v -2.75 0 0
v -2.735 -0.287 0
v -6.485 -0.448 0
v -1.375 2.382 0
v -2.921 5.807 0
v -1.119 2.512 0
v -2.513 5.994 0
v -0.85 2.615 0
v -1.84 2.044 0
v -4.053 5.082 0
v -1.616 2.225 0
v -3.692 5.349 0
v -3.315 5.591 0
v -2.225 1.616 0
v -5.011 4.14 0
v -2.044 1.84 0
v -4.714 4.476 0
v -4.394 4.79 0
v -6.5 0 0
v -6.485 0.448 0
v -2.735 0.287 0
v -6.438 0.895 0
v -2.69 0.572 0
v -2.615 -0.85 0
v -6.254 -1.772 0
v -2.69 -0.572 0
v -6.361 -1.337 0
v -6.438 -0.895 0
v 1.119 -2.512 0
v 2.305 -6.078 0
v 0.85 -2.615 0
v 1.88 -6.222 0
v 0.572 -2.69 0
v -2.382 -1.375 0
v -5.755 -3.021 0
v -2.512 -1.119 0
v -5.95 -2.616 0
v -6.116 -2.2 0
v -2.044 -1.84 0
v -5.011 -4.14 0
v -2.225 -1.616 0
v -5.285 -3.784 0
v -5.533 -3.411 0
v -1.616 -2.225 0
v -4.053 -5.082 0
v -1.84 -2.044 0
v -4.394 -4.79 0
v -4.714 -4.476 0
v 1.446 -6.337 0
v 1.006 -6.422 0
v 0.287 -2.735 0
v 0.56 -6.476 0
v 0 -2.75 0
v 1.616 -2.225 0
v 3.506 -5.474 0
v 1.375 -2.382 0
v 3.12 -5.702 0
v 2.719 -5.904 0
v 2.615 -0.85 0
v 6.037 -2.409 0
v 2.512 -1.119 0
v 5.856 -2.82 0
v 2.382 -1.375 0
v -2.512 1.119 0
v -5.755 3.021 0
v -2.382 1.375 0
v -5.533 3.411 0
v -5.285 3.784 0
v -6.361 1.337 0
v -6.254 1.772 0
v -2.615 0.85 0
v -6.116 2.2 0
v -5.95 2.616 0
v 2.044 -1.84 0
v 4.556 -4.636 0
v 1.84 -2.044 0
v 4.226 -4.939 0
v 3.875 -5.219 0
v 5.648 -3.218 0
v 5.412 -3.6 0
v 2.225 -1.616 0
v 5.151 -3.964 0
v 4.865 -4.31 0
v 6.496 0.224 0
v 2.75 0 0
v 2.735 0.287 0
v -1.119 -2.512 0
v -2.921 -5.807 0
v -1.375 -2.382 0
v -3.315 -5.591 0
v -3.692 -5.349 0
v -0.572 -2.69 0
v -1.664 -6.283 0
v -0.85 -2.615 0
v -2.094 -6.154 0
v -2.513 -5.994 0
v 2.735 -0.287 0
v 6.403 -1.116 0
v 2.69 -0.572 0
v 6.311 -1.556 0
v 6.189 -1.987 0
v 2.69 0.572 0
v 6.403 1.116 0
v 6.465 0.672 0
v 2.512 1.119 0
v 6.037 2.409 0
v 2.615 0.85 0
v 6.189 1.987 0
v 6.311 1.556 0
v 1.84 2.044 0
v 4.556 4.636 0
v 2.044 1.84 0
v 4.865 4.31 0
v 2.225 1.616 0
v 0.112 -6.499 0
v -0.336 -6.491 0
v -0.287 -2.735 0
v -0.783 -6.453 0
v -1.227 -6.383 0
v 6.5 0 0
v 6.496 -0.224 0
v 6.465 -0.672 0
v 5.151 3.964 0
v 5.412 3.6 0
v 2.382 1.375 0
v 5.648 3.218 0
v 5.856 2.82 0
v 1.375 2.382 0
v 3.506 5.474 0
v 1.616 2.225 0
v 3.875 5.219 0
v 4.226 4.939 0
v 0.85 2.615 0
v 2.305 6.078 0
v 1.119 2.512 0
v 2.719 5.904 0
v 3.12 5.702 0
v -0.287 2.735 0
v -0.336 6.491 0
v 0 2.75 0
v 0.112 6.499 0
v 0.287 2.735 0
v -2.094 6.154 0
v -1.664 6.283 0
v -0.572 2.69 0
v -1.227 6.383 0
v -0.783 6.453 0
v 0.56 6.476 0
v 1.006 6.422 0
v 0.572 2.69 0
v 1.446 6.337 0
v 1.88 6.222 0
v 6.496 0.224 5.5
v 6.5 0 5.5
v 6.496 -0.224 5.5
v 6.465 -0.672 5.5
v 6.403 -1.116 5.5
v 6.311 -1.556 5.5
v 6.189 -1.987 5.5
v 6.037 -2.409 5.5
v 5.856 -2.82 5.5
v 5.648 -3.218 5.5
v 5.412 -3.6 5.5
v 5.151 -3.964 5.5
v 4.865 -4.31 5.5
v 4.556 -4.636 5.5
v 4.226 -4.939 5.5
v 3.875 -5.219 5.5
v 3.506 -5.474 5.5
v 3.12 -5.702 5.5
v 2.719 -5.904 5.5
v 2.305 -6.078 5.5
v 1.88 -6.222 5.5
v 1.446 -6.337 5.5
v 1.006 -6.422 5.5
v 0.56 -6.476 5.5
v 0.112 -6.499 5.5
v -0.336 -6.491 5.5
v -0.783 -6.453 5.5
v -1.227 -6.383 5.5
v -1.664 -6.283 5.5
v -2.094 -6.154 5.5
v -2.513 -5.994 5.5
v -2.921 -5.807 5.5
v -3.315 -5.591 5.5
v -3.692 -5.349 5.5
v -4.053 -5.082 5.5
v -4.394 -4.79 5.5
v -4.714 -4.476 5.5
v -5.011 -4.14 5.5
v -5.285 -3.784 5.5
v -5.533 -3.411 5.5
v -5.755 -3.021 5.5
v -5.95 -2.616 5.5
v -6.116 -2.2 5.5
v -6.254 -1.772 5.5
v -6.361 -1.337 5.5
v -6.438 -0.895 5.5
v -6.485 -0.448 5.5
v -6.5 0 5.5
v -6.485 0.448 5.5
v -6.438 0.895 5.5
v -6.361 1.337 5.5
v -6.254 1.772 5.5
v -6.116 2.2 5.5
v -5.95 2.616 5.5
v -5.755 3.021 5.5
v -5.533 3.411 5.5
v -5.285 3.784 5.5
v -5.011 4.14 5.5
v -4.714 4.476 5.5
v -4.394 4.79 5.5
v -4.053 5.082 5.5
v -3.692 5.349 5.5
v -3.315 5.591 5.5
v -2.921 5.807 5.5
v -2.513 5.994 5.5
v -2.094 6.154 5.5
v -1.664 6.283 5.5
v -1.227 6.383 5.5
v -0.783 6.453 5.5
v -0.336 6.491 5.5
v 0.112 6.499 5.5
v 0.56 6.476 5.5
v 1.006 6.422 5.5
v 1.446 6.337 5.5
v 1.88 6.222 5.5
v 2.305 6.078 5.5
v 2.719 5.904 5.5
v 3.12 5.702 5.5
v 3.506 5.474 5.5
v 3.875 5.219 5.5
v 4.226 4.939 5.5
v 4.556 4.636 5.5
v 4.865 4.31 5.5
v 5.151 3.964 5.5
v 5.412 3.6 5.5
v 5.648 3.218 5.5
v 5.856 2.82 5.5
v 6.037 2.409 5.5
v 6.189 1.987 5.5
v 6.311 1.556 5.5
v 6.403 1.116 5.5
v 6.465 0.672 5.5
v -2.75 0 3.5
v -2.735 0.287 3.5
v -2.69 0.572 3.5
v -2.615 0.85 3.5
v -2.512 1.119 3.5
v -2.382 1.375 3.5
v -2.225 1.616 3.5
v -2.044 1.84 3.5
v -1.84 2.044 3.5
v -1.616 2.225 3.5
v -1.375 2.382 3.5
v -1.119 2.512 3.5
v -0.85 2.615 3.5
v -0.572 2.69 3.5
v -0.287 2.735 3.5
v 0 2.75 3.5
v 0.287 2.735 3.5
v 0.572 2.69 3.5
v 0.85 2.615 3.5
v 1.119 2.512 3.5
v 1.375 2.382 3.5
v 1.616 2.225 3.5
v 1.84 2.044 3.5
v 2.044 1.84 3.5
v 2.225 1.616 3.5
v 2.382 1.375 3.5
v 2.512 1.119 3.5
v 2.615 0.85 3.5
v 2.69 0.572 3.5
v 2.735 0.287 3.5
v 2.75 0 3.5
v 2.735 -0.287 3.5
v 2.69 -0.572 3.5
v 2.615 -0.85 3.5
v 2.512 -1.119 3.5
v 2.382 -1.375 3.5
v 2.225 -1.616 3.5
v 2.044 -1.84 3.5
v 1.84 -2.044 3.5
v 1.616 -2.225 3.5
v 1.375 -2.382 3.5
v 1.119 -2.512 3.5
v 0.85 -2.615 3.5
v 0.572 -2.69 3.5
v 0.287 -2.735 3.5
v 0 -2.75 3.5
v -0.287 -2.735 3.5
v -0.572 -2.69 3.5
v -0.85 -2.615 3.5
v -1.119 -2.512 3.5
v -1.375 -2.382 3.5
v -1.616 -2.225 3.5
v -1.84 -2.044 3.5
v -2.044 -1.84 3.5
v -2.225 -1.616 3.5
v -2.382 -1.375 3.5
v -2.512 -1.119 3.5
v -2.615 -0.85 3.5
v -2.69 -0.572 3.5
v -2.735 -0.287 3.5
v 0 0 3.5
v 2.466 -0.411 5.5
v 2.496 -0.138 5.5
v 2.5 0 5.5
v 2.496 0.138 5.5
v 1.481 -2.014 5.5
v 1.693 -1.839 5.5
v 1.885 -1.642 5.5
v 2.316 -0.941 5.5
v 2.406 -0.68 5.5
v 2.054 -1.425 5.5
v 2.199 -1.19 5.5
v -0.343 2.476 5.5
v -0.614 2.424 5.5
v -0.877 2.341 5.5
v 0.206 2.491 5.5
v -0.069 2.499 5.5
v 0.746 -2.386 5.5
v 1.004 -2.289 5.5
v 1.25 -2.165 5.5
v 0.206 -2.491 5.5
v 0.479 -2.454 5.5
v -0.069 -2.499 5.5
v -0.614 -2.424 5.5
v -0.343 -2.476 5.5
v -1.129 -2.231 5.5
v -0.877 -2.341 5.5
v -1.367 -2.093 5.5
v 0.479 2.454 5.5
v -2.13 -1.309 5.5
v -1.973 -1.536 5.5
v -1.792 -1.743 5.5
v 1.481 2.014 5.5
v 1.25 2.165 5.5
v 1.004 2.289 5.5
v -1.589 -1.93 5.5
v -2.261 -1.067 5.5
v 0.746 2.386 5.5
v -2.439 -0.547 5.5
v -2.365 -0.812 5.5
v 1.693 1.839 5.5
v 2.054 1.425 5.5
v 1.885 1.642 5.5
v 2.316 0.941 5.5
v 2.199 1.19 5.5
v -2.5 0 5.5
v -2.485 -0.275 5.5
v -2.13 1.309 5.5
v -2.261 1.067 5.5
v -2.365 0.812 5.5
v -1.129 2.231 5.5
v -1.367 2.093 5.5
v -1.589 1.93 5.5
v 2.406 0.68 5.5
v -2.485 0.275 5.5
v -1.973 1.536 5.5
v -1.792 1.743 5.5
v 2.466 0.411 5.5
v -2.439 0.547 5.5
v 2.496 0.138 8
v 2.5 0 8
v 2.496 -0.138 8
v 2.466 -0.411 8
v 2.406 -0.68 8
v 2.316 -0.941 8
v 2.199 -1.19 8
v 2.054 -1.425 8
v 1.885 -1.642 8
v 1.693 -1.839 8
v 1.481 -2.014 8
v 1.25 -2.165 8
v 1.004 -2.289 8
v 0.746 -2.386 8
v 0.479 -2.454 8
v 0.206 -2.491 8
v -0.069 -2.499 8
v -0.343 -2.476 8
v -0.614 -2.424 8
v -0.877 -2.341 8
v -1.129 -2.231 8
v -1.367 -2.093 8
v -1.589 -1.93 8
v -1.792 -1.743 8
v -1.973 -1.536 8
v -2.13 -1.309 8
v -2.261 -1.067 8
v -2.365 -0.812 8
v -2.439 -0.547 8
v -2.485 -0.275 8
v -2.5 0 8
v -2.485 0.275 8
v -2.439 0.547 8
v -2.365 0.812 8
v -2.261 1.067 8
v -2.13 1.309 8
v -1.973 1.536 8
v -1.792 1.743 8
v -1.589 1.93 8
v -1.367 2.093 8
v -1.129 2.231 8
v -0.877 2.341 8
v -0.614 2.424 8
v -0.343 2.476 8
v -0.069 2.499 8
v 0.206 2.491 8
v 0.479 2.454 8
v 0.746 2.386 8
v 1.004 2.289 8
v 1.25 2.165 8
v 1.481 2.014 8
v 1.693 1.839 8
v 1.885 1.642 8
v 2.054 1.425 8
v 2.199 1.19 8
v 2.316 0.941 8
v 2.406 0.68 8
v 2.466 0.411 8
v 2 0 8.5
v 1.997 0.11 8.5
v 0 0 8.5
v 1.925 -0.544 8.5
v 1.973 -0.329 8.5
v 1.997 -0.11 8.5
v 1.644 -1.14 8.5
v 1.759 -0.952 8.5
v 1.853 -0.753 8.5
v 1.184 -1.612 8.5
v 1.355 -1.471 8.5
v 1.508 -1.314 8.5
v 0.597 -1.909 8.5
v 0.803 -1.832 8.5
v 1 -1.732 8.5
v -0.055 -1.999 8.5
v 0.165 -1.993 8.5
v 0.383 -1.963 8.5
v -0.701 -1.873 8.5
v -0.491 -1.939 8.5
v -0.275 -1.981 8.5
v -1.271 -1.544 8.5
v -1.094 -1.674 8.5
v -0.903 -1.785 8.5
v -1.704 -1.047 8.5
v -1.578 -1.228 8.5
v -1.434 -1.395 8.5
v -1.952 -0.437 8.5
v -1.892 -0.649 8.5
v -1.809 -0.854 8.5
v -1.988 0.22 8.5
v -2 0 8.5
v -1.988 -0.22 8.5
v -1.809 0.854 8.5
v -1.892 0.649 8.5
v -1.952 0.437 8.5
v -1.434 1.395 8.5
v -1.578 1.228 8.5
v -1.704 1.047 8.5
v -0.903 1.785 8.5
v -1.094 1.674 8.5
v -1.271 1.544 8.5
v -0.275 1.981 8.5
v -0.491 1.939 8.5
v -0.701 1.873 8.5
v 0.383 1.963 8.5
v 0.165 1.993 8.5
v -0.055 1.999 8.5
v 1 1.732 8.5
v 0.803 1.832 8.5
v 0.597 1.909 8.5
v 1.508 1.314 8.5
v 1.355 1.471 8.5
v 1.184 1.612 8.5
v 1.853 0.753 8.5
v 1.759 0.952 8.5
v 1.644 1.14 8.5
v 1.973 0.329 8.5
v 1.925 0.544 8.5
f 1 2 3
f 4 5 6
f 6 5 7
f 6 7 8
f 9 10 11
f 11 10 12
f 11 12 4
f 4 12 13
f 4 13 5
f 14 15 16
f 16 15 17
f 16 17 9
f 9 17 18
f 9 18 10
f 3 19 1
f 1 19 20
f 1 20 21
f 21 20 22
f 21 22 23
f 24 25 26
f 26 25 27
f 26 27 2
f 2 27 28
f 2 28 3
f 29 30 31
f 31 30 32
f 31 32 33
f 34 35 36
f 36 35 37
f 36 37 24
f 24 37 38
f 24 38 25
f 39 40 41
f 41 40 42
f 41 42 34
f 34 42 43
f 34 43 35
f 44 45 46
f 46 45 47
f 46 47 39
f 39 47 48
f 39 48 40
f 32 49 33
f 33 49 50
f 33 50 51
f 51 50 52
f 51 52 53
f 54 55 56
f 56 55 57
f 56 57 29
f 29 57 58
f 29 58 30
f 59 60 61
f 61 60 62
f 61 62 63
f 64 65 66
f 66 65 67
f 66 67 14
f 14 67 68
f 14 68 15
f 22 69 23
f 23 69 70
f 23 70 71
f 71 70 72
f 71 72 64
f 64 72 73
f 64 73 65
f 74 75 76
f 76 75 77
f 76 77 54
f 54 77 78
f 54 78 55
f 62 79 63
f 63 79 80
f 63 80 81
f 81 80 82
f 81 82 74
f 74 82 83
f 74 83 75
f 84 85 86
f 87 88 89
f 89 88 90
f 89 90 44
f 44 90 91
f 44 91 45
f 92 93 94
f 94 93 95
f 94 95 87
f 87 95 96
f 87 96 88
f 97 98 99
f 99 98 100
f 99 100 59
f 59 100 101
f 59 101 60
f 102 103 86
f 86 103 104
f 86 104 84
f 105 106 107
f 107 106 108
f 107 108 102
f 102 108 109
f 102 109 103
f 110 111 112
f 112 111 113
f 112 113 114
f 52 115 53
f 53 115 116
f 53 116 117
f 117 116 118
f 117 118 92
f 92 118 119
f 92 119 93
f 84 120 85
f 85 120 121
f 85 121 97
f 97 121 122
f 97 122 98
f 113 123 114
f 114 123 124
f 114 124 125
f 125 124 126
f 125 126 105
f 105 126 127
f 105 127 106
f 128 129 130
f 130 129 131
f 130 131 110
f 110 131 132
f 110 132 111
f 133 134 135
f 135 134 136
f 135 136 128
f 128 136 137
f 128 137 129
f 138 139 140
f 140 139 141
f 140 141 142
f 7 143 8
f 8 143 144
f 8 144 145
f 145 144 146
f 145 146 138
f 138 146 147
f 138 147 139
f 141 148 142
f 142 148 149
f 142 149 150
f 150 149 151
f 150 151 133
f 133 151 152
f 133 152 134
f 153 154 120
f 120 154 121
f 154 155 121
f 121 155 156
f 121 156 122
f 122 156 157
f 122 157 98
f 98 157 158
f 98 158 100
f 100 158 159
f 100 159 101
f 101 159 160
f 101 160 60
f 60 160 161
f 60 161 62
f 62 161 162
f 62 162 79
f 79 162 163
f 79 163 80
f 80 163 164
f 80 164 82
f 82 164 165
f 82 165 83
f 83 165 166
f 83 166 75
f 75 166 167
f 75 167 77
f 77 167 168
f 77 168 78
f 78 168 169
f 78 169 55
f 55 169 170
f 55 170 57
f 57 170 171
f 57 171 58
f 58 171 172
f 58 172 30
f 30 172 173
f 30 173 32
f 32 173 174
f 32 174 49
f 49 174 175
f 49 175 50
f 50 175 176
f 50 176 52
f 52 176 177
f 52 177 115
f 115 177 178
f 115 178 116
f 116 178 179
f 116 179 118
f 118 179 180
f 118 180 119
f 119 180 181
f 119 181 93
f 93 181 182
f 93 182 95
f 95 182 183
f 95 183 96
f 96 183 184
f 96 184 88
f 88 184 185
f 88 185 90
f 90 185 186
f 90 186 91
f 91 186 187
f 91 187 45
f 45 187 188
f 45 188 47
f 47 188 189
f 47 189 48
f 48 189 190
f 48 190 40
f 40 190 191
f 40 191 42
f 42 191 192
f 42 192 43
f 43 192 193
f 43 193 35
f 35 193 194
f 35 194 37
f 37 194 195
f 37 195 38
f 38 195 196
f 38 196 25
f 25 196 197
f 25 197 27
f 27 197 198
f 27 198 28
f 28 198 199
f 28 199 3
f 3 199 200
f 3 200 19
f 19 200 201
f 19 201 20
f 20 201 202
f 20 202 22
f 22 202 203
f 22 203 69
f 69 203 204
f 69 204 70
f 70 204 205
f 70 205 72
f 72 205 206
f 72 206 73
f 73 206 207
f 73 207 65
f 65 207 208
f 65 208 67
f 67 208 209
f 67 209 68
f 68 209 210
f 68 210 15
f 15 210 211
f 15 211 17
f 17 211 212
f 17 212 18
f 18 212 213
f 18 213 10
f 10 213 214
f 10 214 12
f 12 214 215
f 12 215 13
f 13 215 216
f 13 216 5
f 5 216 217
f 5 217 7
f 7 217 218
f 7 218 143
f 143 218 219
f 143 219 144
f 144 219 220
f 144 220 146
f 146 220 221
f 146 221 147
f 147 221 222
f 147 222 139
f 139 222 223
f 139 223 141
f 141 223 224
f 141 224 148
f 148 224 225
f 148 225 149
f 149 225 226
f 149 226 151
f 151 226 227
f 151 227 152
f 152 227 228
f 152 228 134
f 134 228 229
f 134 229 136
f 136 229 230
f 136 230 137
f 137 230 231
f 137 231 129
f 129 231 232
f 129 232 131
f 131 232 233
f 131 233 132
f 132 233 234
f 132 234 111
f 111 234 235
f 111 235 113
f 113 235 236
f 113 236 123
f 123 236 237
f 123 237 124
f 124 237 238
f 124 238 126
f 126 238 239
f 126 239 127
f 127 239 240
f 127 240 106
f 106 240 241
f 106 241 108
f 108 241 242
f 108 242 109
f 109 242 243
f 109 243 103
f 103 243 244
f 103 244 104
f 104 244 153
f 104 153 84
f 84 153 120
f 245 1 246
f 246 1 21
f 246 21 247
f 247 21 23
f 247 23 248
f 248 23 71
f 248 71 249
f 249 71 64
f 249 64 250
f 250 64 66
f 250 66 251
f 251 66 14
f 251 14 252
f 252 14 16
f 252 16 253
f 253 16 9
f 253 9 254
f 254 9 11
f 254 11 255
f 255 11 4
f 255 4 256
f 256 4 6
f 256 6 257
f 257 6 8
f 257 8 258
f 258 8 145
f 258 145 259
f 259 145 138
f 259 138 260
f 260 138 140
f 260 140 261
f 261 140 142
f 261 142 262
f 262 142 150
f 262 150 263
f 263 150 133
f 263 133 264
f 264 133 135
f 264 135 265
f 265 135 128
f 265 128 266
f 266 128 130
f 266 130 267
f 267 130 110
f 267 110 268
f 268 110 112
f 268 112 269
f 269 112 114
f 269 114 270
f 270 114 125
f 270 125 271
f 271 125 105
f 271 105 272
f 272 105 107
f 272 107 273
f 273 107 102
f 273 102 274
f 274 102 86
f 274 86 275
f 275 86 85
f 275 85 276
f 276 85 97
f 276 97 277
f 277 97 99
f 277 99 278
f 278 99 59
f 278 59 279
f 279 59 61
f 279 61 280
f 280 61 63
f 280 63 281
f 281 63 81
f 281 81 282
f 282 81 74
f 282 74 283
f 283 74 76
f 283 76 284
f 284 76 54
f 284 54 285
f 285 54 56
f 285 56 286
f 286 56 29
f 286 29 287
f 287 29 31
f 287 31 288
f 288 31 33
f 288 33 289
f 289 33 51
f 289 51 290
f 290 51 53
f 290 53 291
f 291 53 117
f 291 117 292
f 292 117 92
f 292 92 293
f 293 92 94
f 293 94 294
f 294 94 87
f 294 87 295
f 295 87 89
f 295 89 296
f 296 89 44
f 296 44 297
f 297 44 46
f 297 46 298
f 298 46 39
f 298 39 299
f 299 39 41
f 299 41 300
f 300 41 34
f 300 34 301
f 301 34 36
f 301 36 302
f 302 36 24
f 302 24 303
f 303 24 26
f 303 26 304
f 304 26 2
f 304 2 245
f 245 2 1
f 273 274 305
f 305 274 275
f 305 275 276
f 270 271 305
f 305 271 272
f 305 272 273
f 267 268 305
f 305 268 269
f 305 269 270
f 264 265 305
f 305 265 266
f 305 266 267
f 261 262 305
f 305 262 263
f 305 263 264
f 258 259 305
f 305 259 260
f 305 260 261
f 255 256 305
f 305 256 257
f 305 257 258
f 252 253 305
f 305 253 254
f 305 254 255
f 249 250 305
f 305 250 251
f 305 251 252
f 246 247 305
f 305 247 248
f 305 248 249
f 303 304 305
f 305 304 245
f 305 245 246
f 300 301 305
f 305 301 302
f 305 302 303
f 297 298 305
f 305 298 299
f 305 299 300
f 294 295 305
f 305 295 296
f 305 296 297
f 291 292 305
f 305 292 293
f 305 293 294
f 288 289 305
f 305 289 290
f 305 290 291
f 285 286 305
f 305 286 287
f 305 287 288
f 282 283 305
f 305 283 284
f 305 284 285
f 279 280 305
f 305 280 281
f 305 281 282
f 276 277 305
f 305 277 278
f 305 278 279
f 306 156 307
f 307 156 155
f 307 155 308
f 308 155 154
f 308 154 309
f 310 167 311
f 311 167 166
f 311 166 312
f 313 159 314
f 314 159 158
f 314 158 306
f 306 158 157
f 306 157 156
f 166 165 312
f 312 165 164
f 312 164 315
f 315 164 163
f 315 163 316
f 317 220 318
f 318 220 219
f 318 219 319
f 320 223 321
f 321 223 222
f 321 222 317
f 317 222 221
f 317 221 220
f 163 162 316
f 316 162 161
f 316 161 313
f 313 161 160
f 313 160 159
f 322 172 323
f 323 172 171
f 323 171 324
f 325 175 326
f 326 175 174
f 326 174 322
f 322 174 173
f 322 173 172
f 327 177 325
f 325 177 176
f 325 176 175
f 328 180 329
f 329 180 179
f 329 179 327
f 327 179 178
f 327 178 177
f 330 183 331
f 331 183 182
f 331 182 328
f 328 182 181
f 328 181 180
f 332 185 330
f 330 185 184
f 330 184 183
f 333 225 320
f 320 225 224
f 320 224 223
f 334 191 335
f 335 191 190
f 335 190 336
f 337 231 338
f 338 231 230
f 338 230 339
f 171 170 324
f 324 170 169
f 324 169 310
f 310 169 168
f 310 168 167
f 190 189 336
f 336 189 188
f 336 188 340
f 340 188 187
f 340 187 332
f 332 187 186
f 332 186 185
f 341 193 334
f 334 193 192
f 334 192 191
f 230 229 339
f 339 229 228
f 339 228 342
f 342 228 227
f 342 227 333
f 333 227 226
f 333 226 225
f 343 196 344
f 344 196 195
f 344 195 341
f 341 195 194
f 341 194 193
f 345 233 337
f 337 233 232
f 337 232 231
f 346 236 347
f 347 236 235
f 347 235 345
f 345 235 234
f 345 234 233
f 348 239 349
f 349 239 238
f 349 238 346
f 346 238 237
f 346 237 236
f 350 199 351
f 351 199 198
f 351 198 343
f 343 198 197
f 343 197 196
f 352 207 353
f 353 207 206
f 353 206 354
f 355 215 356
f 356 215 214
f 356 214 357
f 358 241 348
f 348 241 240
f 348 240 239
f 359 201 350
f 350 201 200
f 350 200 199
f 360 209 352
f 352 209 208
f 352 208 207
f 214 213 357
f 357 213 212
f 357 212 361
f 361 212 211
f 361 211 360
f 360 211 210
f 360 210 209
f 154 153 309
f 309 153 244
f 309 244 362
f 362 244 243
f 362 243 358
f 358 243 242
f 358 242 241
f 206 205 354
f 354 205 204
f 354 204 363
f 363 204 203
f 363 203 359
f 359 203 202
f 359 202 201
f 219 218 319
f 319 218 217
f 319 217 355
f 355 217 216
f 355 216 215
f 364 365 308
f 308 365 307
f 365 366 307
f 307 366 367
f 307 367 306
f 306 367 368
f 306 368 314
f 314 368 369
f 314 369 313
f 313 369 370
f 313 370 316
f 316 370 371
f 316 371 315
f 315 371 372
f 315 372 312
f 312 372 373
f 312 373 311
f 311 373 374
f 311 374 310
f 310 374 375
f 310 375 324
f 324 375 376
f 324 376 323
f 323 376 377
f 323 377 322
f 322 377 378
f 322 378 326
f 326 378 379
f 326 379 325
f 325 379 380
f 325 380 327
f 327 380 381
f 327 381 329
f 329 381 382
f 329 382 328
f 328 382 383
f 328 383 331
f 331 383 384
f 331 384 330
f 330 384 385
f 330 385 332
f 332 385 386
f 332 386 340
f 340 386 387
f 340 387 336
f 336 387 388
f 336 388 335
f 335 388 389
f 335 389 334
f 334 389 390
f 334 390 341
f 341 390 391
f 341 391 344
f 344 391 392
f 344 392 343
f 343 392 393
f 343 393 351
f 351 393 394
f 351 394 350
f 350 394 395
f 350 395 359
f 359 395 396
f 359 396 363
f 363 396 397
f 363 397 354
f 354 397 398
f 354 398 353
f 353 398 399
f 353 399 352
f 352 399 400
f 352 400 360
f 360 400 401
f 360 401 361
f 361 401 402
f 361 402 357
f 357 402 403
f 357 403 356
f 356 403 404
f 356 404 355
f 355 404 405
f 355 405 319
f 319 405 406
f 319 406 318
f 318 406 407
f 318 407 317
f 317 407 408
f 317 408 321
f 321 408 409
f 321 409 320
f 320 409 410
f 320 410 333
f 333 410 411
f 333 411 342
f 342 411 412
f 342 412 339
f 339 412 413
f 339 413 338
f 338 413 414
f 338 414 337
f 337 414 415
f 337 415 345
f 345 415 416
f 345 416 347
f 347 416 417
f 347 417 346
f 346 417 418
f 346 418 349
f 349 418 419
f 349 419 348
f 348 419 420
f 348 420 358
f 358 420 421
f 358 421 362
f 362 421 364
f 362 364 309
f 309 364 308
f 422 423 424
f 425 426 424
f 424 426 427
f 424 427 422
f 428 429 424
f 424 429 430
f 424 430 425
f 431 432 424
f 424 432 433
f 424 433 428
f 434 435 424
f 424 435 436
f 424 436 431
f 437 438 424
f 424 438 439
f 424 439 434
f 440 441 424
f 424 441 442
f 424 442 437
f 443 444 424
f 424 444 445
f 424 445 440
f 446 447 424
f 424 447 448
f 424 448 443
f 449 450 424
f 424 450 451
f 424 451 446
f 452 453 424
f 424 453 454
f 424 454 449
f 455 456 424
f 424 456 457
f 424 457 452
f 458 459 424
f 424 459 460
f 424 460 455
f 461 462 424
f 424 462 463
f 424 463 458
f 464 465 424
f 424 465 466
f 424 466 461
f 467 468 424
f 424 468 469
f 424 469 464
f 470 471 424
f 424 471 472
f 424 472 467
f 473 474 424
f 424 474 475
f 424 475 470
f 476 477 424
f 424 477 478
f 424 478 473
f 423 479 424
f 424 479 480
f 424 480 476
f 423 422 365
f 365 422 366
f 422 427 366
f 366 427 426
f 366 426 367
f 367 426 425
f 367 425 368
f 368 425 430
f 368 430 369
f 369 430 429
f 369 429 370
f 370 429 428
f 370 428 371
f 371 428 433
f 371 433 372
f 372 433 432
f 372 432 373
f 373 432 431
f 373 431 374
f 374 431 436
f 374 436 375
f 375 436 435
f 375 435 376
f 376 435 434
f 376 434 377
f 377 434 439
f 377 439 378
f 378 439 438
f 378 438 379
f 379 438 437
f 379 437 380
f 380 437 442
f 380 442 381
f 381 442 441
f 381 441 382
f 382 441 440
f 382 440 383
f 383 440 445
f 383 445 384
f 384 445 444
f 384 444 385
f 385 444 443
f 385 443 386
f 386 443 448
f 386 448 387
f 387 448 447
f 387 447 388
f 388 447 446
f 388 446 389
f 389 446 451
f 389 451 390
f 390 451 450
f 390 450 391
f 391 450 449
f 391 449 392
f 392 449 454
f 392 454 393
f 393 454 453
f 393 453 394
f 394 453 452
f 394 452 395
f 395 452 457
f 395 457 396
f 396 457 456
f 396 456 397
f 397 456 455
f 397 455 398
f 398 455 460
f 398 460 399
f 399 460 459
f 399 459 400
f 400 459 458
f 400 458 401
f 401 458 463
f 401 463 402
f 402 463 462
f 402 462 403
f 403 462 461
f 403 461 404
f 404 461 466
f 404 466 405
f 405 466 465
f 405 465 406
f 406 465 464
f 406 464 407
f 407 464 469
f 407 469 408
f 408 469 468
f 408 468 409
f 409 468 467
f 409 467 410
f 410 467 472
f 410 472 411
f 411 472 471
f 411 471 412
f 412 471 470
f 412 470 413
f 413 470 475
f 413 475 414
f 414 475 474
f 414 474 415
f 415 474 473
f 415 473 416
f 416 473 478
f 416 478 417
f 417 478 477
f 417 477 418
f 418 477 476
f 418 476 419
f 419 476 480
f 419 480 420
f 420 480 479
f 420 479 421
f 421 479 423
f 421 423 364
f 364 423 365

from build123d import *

# Parameters (mm, degrees)
ESQUISSE1_R        = 6.5
ESQUISSE1_R_2      = 2.75
BOSS_EXTRU_1_DEPTH = 3.5
ESQUISSE2_R        = 6.5
BOSS_EXTRU_2_DEPTH = 2
ESQUISSE3_R        = 2.5
BOSS_EXTRU_3_DEPTH = 3
CHANFREIN1_SIZE    = 0.5


with BuildPart() as part:
    # Esquisse1 → Boss.-Extru.1 (new body)
    with BuildSketch(Plane.XY):
        Circle(ESQUISSE1_R)
        Circle(ESQUISSE1_R_2, mode=Mode.SUBTRACT)
    extrude(amount=BOSS_EXTRU_1_DEPTH)

    # Esquisse2 → Boss.-Extru.2 (add)
    with BuildSketch(Plane.XY.offset(3.5)):
        Circle(ESQUISSE2_R)
    extrude(amount=BOSS_EXTRU_2_DEPTH)

    # Esquisse3 → Boss.-Extru.3 (add)
    with BuildSketch(Plane.XY.offset(5.5)):
        Circle(ESQUISSE3_R)
    extrude(amount=BOSS_EXTRU_3_DEPTH)

    # Chanfrein1
    chanfrein1_edges = [part.edges().sort_by_distance(p)[0] for p in [
        (-2.5, 0, 8.5),
    ]]
    chamfer(chanfrein1_edges, length=CHANFREIN1_SIZE)


solid = part.part
